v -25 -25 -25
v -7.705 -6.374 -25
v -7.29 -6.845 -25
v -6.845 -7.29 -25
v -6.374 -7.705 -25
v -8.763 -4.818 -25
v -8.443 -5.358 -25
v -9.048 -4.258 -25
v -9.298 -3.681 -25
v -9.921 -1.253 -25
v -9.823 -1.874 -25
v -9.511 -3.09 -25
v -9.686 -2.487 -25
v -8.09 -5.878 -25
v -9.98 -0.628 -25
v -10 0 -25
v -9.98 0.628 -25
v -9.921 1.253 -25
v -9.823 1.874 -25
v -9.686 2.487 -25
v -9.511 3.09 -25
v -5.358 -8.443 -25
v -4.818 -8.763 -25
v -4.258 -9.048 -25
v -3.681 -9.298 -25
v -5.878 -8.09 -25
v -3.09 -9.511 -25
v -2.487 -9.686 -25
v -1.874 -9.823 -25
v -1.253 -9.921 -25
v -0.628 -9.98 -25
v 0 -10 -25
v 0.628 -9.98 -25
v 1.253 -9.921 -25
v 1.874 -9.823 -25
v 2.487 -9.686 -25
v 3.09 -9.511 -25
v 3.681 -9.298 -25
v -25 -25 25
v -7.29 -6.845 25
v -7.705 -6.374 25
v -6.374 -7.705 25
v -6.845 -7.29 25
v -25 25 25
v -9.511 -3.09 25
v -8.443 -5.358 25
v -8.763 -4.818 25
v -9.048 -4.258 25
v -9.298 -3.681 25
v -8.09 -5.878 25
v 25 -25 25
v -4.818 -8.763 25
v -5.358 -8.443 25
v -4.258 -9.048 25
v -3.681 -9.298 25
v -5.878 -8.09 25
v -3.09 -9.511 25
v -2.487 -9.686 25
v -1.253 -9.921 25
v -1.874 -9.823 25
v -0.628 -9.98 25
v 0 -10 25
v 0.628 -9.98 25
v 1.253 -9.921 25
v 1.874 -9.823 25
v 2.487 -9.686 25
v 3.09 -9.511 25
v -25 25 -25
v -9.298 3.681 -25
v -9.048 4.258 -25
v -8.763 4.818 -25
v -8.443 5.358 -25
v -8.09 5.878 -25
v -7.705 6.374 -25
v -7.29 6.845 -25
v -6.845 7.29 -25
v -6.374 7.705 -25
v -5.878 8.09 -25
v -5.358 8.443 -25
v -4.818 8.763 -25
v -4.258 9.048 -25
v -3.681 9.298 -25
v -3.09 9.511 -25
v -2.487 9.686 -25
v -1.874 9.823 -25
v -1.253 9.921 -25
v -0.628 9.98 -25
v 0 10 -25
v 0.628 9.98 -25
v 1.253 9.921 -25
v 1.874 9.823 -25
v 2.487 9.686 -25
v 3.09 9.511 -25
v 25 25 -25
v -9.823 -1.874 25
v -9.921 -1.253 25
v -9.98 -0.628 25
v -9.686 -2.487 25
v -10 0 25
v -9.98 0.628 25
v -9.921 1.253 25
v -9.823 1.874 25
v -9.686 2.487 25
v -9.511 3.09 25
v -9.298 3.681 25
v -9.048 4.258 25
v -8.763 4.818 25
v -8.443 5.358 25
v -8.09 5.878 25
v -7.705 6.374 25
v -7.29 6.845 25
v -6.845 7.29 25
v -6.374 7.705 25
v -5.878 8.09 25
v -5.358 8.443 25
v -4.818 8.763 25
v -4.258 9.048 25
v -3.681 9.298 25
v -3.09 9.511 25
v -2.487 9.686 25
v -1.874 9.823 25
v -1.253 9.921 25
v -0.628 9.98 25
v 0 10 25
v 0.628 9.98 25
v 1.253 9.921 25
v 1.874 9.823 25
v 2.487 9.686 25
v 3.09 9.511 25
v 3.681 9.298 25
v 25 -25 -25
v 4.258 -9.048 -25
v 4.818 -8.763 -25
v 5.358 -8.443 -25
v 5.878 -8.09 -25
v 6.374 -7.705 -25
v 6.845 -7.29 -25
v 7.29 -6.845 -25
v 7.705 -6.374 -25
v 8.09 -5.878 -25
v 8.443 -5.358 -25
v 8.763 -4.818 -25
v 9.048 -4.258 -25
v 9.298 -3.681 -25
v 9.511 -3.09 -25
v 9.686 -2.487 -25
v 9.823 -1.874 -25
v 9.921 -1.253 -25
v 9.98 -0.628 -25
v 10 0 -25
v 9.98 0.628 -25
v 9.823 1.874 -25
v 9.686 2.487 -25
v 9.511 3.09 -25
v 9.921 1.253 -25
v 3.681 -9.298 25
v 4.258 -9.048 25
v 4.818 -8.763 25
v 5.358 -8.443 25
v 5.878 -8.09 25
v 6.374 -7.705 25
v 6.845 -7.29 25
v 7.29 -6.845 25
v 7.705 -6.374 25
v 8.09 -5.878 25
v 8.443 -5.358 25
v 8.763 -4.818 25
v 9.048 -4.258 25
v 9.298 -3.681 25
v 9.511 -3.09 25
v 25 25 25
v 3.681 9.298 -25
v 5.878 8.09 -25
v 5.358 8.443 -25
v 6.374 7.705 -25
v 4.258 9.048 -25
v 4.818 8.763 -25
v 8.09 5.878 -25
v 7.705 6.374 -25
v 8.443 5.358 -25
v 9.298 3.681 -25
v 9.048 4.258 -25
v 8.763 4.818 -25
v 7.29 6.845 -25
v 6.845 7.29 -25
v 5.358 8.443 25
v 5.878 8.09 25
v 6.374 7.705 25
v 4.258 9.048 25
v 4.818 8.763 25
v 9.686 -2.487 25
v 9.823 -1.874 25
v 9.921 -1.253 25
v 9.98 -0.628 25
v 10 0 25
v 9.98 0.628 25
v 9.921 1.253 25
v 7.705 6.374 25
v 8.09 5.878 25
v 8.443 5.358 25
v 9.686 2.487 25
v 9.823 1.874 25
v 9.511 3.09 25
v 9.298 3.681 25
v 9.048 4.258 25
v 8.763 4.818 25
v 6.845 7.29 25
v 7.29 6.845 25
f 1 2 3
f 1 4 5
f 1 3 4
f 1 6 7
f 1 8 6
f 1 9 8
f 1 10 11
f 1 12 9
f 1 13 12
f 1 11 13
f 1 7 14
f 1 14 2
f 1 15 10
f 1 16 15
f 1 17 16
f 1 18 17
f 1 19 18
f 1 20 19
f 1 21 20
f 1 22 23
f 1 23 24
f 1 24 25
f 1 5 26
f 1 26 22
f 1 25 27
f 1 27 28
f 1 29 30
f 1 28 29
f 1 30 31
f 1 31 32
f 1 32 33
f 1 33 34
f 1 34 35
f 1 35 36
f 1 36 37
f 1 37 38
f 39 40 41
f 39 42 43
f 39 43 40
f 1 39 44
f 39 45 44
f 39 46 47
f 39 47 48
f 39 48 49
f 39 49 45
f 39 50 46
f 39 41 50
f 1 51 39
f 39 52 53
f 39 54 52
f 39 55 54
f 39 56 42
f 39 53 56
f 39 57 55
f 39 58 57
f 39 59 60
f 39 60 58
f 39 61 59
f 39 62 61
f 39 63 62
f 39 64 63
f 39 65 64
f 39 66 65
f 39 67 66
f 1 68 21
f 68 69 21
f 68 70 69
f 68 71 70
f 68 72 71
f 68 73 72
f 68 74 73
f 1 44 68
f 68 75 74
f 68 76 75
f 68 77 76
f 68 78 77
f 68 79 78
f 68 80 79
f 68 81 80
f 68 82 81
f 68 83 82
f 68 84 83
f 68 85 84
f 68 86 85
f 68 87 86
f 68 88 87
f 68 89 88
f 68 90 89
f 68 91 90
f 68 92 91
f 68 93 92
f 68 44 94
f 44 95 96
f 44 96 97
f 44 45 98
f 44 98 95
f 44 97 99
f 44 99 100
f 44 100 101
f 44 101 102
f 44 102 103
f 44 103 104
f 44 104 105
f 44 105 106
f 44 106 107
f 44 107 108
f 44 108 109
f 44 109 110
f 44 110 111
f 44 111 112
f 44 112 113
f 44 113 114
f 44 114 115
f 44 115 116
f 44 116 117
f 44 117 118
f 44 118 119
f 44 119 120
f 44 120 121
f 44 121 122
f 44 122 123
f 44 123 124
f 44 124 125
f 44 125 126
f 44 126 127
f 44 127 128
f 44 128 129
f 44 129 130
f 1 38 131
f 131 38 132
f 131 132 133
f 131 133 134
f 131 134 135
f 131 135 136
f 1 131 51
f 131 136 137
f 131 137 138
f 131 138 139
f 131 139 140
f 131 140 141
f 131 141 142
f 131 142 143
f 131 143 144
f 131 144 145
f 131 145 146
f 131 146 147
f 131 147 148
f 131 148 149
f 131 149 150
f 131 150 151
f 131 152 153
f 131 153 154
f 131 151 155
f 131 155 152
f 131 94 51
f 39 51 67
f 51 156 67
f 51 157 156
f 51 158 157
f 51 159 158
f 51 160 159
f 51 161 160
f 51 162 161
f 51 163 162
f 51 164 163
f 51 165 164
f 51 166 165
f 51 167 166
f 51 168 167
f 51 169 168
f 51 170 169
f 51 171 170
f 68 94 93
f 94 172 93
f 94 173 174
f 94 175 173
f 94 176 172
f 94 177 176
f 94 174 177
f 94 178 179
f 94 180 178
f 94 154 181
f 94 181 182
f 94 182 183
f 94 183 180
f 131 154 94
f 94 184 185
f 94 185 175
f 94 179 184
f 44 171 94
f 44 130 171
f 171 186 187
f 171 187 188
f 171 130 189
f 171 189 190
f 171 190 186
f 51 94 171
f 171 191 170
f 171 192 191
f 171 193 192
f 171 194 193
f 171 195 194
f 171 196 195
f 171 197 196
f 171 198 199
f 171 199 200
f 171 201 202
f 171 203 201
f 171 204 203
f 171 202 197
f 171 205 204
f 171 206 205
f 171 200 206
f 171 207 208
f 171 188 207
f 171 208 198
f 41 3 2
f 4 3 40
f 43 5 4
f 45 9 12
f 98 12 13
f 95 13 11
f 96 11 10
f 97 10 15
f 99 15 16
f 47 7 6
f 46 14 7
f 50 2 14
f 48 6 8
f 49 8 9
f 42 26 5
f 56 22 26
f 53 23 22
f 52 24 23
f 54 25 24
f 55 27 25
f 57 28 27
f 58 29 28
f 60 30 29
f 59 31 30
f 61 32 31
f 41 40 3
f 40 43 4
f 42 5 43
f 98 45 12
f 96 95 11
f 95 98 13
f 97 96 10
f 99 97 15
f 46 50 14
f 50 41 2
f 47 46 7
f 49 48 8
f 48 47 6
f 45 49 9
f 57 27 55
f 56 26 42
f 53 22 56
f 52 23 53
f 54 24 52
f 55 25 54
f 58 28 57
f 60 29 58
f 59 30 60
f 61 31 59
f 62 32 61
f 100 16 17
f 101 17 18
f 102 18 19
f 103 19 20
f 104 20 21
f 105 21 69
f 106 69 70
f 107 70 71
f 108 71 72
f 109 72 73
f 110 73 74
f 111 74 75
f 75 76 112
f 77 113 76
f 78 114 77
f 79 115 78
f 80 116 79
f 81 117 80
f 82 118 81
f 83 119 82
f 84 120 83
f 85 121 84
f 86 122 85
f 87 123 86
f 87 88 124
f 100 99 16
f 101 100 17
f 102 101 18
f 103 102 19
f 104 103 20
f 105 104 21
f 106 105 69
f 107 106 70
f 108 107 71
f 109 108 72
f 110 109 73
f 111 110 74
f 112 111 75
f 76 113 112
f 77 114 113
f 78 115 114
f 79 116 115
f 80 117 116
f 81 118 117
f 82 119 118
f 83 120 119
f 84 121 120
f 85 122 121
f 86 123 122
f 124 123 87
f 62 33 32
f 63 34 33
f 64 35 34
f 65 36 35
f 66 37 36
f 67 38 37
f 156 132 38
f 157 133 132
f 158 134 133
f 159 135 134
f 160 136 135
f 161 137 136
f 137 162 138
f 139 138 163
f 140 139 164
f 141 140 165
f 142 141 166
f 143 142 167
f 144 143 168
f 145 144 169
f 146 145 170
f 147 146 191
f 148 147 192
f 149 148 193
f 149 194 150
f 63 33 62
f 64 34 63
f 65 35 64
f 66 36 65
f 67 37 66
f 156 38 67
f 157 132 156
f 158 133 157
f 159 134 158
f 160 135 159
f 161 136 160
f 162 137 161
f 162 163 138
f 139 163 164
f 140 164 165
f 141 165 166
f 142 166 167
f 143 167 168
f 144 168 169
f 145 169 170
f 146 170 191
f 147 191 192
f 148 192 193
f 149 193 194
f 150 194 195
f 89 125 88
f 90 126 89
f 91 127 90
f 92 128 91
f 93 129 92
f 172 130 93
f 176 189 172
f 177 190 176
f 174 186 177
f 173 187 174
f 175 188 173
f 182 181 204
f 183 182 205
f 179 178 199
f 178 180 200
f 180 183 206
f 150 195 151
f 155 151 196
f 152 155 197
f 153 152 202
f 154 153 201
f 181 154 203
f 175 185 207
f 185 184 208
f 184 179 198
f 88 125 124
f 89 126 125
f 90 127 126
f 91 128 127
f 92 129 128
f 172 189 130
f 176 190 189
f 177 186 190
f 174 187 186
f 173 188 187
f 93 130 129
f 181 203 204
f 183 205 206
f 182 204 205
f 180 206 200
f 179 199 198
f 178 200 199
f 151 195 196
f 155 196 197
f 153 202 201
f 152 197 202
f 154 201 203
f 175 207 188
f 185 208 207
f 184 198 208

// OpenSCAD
// 50mm角の立方体に、直径20mmのZ軸方向貫通穴を開けたモデル

cube_size = 50;
hole_d    = 20;

$fn = 100;

difference() {
    // 50mm角の立方体（原点を中心に配置）
    cube([cube_size, cube_size, cube_size], center = true);

    // 中央を z 軸方向に貫通する直径20mmの穴
    cylinder(h = cube_size + 1, d = hole_d, center = true);
}
